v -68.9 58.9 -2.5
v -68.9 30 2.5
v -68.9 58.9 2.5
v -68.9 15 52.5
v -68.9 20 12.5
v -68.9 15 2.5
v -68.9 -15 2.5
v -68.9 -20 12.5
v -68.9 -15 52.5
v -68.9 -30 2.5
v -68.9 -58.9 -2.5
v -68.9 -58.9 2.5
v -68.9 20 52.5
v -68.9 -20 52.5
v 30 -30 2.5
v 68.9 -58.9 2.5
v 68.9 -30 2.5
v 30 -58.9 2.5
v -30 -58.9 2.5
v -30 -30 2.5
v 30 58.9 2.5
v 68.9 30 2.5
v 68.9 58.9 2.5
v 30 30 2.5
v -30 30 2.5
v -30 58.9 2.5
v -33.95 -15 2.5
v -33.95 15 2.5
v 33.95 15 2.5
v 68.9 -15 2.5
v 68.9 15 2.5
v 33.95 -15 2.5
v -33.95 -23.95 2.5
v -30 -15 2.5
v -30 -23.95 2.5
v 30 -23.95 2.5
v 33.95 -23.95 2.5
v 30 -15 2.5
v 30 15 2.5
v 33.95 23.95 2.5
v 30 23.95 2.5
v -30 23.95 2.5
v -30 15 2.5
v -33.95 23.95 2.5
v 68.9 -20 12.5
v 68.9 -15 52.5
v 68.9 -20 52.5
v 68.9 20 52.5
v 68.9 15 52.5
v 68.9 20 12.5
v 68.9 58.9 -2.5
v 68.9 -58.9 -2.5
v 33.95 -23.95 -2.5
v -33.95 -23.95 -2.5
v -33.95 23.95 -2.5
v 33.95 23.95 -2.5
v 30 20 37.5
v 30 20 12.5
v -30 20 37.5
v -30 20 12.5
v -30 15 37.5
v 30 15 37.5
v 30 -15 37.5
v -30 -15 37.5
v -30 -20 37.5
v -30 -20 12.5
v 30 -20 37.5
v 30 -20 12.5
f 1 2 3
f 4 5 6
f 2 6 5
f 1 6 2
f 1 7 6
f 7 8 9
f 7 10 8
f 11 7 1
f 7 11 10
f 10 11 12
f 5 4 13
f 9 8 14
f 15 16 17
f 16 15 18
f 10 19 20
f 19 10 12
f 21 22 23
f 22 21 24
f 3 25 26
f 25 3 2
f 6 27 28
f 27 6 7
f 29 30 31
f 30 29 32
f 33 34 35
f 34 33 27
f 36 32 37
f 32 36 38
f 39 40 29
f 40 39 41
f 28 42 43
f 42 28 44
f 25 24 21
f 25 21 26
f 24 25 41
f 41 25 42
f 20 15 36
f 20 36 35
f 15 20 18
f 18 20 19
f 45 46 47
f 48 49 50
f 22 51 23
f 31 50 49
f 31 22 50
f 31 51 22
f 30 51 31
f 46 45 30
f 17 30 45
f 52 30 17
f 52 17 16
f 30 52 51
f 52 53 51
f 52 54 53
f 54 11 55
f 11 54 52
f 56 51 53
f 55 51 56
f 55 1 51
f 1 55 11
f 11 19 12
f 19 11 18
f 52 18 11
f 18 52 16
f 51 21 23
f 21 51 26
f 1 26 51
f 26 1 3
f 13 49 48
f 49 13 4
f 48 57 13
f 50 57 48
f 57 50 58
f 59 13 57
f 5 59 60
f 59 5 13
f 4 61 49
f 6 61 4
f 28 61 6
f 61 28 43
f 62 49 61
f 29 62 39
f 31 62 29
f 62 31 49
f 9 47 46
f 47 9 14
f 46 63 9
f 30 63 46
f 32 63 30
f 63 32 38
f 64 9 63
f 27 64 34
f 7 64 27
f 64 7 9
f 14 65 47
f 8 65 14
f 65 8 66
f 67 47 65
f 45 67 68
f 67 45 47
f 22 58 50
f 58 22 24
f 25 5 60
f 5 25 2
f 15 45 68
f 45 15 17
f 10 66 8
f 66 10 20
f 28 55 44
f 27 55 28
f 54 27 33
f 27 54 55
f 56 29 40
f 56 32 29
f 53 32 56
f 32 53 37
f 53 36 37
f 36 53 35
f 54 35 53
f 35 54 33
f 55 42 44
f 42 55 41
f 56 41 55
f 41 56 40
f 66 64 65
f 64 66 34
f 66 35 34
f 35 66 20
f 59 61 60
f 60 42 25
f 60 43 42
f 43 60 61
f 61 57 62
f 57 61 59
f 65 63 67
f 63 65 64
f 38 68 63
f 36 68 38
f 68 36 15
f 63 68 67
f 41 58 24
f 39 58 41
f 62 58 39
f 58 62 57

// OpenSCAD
// Global constants
print_comp = 0.1;  // compensation for (unwanted) additional material being extruded bei 3d printer


/*
  x = direction along the sheet material
  y = perpendicular to the direction along sheet edge
*/

/* jig for 30 mm thick sheet with an area that allows to mill through the entire sheet */
router_jig_edge_basis(
    sheet_width = 30,
    max_dim_x = 60,
    max_dim_y = 40,
    min_cutter_dim = 6,
    max_cutter_len = 40,
    copyring_dia = 13.8);


module router_jig_edge_basis(
  sheet_width = 30,     // the width of the sheet to attach the jig to
  max_dim_x = 60,       // max routing in direction of sheet
  max_dim_y = 40,       // max routing perpendicular to sheet direction
  min_cutter_dim = 6,   // smallest cutter to be taken into account
  max_cutter_len = 40,  // maximum cutter length sticking out of router chuck
  copyring_dia = 13.8,  // outer copying ring diameter
  ) {
    // fixed values derived from router dimensions and experience
    jig_h = 5;     // jig height (or strength)
    guide_h = 50;  // height of guides to hold the jig
    frame_w = 70;  // width of support area
    dia_to_add = copyring_dia-min_cutter_dim;
    outer_x = max_dim_x+dia_to_add+frame_w;
    outer_y = max_dim_y+dia_to_add+frame_w;

    difference() {
        union() {
            cube([outer_x, outer_y, jig_h], center=true);
            translate([0, (sheet_width+jig_h)/2, (guide_h+jig_h)/2]) cube([outer_x, jig_h, guide_h], center=true);
            translate([0, -(sheet_width+jig_h)/2, (guide_h+jig_h)/2]) cube([outer_x, jig_h, guide_h], center=true);
            translate([outer_x/2, sheet_width/2+jig_h, jig_h/2]) rotate([0, -90, 0])
                linear_extrude(height=outer_x) polygon(points = [[0, 0], [10, 0], [0, 10]]);
            translate([outer_x/2, -(sheet_width/2+jig_h), jig_h/2]) rotate([0, -90, 0])
                linear_extrude(height=outer_x) polygon(points = [[0, 0], [10, 0], [0, -10]]);
        }
        cube([max_dim_x+dia_to_add+print_comp, max_dim_y+dia_to_add+print_comp, jig_h], center=true);
        translate([0, 0, max_cutter_len/2]) cube([max_dim_x, outer_y, max_cutter_len-jig_h], center=true);
    }
}
